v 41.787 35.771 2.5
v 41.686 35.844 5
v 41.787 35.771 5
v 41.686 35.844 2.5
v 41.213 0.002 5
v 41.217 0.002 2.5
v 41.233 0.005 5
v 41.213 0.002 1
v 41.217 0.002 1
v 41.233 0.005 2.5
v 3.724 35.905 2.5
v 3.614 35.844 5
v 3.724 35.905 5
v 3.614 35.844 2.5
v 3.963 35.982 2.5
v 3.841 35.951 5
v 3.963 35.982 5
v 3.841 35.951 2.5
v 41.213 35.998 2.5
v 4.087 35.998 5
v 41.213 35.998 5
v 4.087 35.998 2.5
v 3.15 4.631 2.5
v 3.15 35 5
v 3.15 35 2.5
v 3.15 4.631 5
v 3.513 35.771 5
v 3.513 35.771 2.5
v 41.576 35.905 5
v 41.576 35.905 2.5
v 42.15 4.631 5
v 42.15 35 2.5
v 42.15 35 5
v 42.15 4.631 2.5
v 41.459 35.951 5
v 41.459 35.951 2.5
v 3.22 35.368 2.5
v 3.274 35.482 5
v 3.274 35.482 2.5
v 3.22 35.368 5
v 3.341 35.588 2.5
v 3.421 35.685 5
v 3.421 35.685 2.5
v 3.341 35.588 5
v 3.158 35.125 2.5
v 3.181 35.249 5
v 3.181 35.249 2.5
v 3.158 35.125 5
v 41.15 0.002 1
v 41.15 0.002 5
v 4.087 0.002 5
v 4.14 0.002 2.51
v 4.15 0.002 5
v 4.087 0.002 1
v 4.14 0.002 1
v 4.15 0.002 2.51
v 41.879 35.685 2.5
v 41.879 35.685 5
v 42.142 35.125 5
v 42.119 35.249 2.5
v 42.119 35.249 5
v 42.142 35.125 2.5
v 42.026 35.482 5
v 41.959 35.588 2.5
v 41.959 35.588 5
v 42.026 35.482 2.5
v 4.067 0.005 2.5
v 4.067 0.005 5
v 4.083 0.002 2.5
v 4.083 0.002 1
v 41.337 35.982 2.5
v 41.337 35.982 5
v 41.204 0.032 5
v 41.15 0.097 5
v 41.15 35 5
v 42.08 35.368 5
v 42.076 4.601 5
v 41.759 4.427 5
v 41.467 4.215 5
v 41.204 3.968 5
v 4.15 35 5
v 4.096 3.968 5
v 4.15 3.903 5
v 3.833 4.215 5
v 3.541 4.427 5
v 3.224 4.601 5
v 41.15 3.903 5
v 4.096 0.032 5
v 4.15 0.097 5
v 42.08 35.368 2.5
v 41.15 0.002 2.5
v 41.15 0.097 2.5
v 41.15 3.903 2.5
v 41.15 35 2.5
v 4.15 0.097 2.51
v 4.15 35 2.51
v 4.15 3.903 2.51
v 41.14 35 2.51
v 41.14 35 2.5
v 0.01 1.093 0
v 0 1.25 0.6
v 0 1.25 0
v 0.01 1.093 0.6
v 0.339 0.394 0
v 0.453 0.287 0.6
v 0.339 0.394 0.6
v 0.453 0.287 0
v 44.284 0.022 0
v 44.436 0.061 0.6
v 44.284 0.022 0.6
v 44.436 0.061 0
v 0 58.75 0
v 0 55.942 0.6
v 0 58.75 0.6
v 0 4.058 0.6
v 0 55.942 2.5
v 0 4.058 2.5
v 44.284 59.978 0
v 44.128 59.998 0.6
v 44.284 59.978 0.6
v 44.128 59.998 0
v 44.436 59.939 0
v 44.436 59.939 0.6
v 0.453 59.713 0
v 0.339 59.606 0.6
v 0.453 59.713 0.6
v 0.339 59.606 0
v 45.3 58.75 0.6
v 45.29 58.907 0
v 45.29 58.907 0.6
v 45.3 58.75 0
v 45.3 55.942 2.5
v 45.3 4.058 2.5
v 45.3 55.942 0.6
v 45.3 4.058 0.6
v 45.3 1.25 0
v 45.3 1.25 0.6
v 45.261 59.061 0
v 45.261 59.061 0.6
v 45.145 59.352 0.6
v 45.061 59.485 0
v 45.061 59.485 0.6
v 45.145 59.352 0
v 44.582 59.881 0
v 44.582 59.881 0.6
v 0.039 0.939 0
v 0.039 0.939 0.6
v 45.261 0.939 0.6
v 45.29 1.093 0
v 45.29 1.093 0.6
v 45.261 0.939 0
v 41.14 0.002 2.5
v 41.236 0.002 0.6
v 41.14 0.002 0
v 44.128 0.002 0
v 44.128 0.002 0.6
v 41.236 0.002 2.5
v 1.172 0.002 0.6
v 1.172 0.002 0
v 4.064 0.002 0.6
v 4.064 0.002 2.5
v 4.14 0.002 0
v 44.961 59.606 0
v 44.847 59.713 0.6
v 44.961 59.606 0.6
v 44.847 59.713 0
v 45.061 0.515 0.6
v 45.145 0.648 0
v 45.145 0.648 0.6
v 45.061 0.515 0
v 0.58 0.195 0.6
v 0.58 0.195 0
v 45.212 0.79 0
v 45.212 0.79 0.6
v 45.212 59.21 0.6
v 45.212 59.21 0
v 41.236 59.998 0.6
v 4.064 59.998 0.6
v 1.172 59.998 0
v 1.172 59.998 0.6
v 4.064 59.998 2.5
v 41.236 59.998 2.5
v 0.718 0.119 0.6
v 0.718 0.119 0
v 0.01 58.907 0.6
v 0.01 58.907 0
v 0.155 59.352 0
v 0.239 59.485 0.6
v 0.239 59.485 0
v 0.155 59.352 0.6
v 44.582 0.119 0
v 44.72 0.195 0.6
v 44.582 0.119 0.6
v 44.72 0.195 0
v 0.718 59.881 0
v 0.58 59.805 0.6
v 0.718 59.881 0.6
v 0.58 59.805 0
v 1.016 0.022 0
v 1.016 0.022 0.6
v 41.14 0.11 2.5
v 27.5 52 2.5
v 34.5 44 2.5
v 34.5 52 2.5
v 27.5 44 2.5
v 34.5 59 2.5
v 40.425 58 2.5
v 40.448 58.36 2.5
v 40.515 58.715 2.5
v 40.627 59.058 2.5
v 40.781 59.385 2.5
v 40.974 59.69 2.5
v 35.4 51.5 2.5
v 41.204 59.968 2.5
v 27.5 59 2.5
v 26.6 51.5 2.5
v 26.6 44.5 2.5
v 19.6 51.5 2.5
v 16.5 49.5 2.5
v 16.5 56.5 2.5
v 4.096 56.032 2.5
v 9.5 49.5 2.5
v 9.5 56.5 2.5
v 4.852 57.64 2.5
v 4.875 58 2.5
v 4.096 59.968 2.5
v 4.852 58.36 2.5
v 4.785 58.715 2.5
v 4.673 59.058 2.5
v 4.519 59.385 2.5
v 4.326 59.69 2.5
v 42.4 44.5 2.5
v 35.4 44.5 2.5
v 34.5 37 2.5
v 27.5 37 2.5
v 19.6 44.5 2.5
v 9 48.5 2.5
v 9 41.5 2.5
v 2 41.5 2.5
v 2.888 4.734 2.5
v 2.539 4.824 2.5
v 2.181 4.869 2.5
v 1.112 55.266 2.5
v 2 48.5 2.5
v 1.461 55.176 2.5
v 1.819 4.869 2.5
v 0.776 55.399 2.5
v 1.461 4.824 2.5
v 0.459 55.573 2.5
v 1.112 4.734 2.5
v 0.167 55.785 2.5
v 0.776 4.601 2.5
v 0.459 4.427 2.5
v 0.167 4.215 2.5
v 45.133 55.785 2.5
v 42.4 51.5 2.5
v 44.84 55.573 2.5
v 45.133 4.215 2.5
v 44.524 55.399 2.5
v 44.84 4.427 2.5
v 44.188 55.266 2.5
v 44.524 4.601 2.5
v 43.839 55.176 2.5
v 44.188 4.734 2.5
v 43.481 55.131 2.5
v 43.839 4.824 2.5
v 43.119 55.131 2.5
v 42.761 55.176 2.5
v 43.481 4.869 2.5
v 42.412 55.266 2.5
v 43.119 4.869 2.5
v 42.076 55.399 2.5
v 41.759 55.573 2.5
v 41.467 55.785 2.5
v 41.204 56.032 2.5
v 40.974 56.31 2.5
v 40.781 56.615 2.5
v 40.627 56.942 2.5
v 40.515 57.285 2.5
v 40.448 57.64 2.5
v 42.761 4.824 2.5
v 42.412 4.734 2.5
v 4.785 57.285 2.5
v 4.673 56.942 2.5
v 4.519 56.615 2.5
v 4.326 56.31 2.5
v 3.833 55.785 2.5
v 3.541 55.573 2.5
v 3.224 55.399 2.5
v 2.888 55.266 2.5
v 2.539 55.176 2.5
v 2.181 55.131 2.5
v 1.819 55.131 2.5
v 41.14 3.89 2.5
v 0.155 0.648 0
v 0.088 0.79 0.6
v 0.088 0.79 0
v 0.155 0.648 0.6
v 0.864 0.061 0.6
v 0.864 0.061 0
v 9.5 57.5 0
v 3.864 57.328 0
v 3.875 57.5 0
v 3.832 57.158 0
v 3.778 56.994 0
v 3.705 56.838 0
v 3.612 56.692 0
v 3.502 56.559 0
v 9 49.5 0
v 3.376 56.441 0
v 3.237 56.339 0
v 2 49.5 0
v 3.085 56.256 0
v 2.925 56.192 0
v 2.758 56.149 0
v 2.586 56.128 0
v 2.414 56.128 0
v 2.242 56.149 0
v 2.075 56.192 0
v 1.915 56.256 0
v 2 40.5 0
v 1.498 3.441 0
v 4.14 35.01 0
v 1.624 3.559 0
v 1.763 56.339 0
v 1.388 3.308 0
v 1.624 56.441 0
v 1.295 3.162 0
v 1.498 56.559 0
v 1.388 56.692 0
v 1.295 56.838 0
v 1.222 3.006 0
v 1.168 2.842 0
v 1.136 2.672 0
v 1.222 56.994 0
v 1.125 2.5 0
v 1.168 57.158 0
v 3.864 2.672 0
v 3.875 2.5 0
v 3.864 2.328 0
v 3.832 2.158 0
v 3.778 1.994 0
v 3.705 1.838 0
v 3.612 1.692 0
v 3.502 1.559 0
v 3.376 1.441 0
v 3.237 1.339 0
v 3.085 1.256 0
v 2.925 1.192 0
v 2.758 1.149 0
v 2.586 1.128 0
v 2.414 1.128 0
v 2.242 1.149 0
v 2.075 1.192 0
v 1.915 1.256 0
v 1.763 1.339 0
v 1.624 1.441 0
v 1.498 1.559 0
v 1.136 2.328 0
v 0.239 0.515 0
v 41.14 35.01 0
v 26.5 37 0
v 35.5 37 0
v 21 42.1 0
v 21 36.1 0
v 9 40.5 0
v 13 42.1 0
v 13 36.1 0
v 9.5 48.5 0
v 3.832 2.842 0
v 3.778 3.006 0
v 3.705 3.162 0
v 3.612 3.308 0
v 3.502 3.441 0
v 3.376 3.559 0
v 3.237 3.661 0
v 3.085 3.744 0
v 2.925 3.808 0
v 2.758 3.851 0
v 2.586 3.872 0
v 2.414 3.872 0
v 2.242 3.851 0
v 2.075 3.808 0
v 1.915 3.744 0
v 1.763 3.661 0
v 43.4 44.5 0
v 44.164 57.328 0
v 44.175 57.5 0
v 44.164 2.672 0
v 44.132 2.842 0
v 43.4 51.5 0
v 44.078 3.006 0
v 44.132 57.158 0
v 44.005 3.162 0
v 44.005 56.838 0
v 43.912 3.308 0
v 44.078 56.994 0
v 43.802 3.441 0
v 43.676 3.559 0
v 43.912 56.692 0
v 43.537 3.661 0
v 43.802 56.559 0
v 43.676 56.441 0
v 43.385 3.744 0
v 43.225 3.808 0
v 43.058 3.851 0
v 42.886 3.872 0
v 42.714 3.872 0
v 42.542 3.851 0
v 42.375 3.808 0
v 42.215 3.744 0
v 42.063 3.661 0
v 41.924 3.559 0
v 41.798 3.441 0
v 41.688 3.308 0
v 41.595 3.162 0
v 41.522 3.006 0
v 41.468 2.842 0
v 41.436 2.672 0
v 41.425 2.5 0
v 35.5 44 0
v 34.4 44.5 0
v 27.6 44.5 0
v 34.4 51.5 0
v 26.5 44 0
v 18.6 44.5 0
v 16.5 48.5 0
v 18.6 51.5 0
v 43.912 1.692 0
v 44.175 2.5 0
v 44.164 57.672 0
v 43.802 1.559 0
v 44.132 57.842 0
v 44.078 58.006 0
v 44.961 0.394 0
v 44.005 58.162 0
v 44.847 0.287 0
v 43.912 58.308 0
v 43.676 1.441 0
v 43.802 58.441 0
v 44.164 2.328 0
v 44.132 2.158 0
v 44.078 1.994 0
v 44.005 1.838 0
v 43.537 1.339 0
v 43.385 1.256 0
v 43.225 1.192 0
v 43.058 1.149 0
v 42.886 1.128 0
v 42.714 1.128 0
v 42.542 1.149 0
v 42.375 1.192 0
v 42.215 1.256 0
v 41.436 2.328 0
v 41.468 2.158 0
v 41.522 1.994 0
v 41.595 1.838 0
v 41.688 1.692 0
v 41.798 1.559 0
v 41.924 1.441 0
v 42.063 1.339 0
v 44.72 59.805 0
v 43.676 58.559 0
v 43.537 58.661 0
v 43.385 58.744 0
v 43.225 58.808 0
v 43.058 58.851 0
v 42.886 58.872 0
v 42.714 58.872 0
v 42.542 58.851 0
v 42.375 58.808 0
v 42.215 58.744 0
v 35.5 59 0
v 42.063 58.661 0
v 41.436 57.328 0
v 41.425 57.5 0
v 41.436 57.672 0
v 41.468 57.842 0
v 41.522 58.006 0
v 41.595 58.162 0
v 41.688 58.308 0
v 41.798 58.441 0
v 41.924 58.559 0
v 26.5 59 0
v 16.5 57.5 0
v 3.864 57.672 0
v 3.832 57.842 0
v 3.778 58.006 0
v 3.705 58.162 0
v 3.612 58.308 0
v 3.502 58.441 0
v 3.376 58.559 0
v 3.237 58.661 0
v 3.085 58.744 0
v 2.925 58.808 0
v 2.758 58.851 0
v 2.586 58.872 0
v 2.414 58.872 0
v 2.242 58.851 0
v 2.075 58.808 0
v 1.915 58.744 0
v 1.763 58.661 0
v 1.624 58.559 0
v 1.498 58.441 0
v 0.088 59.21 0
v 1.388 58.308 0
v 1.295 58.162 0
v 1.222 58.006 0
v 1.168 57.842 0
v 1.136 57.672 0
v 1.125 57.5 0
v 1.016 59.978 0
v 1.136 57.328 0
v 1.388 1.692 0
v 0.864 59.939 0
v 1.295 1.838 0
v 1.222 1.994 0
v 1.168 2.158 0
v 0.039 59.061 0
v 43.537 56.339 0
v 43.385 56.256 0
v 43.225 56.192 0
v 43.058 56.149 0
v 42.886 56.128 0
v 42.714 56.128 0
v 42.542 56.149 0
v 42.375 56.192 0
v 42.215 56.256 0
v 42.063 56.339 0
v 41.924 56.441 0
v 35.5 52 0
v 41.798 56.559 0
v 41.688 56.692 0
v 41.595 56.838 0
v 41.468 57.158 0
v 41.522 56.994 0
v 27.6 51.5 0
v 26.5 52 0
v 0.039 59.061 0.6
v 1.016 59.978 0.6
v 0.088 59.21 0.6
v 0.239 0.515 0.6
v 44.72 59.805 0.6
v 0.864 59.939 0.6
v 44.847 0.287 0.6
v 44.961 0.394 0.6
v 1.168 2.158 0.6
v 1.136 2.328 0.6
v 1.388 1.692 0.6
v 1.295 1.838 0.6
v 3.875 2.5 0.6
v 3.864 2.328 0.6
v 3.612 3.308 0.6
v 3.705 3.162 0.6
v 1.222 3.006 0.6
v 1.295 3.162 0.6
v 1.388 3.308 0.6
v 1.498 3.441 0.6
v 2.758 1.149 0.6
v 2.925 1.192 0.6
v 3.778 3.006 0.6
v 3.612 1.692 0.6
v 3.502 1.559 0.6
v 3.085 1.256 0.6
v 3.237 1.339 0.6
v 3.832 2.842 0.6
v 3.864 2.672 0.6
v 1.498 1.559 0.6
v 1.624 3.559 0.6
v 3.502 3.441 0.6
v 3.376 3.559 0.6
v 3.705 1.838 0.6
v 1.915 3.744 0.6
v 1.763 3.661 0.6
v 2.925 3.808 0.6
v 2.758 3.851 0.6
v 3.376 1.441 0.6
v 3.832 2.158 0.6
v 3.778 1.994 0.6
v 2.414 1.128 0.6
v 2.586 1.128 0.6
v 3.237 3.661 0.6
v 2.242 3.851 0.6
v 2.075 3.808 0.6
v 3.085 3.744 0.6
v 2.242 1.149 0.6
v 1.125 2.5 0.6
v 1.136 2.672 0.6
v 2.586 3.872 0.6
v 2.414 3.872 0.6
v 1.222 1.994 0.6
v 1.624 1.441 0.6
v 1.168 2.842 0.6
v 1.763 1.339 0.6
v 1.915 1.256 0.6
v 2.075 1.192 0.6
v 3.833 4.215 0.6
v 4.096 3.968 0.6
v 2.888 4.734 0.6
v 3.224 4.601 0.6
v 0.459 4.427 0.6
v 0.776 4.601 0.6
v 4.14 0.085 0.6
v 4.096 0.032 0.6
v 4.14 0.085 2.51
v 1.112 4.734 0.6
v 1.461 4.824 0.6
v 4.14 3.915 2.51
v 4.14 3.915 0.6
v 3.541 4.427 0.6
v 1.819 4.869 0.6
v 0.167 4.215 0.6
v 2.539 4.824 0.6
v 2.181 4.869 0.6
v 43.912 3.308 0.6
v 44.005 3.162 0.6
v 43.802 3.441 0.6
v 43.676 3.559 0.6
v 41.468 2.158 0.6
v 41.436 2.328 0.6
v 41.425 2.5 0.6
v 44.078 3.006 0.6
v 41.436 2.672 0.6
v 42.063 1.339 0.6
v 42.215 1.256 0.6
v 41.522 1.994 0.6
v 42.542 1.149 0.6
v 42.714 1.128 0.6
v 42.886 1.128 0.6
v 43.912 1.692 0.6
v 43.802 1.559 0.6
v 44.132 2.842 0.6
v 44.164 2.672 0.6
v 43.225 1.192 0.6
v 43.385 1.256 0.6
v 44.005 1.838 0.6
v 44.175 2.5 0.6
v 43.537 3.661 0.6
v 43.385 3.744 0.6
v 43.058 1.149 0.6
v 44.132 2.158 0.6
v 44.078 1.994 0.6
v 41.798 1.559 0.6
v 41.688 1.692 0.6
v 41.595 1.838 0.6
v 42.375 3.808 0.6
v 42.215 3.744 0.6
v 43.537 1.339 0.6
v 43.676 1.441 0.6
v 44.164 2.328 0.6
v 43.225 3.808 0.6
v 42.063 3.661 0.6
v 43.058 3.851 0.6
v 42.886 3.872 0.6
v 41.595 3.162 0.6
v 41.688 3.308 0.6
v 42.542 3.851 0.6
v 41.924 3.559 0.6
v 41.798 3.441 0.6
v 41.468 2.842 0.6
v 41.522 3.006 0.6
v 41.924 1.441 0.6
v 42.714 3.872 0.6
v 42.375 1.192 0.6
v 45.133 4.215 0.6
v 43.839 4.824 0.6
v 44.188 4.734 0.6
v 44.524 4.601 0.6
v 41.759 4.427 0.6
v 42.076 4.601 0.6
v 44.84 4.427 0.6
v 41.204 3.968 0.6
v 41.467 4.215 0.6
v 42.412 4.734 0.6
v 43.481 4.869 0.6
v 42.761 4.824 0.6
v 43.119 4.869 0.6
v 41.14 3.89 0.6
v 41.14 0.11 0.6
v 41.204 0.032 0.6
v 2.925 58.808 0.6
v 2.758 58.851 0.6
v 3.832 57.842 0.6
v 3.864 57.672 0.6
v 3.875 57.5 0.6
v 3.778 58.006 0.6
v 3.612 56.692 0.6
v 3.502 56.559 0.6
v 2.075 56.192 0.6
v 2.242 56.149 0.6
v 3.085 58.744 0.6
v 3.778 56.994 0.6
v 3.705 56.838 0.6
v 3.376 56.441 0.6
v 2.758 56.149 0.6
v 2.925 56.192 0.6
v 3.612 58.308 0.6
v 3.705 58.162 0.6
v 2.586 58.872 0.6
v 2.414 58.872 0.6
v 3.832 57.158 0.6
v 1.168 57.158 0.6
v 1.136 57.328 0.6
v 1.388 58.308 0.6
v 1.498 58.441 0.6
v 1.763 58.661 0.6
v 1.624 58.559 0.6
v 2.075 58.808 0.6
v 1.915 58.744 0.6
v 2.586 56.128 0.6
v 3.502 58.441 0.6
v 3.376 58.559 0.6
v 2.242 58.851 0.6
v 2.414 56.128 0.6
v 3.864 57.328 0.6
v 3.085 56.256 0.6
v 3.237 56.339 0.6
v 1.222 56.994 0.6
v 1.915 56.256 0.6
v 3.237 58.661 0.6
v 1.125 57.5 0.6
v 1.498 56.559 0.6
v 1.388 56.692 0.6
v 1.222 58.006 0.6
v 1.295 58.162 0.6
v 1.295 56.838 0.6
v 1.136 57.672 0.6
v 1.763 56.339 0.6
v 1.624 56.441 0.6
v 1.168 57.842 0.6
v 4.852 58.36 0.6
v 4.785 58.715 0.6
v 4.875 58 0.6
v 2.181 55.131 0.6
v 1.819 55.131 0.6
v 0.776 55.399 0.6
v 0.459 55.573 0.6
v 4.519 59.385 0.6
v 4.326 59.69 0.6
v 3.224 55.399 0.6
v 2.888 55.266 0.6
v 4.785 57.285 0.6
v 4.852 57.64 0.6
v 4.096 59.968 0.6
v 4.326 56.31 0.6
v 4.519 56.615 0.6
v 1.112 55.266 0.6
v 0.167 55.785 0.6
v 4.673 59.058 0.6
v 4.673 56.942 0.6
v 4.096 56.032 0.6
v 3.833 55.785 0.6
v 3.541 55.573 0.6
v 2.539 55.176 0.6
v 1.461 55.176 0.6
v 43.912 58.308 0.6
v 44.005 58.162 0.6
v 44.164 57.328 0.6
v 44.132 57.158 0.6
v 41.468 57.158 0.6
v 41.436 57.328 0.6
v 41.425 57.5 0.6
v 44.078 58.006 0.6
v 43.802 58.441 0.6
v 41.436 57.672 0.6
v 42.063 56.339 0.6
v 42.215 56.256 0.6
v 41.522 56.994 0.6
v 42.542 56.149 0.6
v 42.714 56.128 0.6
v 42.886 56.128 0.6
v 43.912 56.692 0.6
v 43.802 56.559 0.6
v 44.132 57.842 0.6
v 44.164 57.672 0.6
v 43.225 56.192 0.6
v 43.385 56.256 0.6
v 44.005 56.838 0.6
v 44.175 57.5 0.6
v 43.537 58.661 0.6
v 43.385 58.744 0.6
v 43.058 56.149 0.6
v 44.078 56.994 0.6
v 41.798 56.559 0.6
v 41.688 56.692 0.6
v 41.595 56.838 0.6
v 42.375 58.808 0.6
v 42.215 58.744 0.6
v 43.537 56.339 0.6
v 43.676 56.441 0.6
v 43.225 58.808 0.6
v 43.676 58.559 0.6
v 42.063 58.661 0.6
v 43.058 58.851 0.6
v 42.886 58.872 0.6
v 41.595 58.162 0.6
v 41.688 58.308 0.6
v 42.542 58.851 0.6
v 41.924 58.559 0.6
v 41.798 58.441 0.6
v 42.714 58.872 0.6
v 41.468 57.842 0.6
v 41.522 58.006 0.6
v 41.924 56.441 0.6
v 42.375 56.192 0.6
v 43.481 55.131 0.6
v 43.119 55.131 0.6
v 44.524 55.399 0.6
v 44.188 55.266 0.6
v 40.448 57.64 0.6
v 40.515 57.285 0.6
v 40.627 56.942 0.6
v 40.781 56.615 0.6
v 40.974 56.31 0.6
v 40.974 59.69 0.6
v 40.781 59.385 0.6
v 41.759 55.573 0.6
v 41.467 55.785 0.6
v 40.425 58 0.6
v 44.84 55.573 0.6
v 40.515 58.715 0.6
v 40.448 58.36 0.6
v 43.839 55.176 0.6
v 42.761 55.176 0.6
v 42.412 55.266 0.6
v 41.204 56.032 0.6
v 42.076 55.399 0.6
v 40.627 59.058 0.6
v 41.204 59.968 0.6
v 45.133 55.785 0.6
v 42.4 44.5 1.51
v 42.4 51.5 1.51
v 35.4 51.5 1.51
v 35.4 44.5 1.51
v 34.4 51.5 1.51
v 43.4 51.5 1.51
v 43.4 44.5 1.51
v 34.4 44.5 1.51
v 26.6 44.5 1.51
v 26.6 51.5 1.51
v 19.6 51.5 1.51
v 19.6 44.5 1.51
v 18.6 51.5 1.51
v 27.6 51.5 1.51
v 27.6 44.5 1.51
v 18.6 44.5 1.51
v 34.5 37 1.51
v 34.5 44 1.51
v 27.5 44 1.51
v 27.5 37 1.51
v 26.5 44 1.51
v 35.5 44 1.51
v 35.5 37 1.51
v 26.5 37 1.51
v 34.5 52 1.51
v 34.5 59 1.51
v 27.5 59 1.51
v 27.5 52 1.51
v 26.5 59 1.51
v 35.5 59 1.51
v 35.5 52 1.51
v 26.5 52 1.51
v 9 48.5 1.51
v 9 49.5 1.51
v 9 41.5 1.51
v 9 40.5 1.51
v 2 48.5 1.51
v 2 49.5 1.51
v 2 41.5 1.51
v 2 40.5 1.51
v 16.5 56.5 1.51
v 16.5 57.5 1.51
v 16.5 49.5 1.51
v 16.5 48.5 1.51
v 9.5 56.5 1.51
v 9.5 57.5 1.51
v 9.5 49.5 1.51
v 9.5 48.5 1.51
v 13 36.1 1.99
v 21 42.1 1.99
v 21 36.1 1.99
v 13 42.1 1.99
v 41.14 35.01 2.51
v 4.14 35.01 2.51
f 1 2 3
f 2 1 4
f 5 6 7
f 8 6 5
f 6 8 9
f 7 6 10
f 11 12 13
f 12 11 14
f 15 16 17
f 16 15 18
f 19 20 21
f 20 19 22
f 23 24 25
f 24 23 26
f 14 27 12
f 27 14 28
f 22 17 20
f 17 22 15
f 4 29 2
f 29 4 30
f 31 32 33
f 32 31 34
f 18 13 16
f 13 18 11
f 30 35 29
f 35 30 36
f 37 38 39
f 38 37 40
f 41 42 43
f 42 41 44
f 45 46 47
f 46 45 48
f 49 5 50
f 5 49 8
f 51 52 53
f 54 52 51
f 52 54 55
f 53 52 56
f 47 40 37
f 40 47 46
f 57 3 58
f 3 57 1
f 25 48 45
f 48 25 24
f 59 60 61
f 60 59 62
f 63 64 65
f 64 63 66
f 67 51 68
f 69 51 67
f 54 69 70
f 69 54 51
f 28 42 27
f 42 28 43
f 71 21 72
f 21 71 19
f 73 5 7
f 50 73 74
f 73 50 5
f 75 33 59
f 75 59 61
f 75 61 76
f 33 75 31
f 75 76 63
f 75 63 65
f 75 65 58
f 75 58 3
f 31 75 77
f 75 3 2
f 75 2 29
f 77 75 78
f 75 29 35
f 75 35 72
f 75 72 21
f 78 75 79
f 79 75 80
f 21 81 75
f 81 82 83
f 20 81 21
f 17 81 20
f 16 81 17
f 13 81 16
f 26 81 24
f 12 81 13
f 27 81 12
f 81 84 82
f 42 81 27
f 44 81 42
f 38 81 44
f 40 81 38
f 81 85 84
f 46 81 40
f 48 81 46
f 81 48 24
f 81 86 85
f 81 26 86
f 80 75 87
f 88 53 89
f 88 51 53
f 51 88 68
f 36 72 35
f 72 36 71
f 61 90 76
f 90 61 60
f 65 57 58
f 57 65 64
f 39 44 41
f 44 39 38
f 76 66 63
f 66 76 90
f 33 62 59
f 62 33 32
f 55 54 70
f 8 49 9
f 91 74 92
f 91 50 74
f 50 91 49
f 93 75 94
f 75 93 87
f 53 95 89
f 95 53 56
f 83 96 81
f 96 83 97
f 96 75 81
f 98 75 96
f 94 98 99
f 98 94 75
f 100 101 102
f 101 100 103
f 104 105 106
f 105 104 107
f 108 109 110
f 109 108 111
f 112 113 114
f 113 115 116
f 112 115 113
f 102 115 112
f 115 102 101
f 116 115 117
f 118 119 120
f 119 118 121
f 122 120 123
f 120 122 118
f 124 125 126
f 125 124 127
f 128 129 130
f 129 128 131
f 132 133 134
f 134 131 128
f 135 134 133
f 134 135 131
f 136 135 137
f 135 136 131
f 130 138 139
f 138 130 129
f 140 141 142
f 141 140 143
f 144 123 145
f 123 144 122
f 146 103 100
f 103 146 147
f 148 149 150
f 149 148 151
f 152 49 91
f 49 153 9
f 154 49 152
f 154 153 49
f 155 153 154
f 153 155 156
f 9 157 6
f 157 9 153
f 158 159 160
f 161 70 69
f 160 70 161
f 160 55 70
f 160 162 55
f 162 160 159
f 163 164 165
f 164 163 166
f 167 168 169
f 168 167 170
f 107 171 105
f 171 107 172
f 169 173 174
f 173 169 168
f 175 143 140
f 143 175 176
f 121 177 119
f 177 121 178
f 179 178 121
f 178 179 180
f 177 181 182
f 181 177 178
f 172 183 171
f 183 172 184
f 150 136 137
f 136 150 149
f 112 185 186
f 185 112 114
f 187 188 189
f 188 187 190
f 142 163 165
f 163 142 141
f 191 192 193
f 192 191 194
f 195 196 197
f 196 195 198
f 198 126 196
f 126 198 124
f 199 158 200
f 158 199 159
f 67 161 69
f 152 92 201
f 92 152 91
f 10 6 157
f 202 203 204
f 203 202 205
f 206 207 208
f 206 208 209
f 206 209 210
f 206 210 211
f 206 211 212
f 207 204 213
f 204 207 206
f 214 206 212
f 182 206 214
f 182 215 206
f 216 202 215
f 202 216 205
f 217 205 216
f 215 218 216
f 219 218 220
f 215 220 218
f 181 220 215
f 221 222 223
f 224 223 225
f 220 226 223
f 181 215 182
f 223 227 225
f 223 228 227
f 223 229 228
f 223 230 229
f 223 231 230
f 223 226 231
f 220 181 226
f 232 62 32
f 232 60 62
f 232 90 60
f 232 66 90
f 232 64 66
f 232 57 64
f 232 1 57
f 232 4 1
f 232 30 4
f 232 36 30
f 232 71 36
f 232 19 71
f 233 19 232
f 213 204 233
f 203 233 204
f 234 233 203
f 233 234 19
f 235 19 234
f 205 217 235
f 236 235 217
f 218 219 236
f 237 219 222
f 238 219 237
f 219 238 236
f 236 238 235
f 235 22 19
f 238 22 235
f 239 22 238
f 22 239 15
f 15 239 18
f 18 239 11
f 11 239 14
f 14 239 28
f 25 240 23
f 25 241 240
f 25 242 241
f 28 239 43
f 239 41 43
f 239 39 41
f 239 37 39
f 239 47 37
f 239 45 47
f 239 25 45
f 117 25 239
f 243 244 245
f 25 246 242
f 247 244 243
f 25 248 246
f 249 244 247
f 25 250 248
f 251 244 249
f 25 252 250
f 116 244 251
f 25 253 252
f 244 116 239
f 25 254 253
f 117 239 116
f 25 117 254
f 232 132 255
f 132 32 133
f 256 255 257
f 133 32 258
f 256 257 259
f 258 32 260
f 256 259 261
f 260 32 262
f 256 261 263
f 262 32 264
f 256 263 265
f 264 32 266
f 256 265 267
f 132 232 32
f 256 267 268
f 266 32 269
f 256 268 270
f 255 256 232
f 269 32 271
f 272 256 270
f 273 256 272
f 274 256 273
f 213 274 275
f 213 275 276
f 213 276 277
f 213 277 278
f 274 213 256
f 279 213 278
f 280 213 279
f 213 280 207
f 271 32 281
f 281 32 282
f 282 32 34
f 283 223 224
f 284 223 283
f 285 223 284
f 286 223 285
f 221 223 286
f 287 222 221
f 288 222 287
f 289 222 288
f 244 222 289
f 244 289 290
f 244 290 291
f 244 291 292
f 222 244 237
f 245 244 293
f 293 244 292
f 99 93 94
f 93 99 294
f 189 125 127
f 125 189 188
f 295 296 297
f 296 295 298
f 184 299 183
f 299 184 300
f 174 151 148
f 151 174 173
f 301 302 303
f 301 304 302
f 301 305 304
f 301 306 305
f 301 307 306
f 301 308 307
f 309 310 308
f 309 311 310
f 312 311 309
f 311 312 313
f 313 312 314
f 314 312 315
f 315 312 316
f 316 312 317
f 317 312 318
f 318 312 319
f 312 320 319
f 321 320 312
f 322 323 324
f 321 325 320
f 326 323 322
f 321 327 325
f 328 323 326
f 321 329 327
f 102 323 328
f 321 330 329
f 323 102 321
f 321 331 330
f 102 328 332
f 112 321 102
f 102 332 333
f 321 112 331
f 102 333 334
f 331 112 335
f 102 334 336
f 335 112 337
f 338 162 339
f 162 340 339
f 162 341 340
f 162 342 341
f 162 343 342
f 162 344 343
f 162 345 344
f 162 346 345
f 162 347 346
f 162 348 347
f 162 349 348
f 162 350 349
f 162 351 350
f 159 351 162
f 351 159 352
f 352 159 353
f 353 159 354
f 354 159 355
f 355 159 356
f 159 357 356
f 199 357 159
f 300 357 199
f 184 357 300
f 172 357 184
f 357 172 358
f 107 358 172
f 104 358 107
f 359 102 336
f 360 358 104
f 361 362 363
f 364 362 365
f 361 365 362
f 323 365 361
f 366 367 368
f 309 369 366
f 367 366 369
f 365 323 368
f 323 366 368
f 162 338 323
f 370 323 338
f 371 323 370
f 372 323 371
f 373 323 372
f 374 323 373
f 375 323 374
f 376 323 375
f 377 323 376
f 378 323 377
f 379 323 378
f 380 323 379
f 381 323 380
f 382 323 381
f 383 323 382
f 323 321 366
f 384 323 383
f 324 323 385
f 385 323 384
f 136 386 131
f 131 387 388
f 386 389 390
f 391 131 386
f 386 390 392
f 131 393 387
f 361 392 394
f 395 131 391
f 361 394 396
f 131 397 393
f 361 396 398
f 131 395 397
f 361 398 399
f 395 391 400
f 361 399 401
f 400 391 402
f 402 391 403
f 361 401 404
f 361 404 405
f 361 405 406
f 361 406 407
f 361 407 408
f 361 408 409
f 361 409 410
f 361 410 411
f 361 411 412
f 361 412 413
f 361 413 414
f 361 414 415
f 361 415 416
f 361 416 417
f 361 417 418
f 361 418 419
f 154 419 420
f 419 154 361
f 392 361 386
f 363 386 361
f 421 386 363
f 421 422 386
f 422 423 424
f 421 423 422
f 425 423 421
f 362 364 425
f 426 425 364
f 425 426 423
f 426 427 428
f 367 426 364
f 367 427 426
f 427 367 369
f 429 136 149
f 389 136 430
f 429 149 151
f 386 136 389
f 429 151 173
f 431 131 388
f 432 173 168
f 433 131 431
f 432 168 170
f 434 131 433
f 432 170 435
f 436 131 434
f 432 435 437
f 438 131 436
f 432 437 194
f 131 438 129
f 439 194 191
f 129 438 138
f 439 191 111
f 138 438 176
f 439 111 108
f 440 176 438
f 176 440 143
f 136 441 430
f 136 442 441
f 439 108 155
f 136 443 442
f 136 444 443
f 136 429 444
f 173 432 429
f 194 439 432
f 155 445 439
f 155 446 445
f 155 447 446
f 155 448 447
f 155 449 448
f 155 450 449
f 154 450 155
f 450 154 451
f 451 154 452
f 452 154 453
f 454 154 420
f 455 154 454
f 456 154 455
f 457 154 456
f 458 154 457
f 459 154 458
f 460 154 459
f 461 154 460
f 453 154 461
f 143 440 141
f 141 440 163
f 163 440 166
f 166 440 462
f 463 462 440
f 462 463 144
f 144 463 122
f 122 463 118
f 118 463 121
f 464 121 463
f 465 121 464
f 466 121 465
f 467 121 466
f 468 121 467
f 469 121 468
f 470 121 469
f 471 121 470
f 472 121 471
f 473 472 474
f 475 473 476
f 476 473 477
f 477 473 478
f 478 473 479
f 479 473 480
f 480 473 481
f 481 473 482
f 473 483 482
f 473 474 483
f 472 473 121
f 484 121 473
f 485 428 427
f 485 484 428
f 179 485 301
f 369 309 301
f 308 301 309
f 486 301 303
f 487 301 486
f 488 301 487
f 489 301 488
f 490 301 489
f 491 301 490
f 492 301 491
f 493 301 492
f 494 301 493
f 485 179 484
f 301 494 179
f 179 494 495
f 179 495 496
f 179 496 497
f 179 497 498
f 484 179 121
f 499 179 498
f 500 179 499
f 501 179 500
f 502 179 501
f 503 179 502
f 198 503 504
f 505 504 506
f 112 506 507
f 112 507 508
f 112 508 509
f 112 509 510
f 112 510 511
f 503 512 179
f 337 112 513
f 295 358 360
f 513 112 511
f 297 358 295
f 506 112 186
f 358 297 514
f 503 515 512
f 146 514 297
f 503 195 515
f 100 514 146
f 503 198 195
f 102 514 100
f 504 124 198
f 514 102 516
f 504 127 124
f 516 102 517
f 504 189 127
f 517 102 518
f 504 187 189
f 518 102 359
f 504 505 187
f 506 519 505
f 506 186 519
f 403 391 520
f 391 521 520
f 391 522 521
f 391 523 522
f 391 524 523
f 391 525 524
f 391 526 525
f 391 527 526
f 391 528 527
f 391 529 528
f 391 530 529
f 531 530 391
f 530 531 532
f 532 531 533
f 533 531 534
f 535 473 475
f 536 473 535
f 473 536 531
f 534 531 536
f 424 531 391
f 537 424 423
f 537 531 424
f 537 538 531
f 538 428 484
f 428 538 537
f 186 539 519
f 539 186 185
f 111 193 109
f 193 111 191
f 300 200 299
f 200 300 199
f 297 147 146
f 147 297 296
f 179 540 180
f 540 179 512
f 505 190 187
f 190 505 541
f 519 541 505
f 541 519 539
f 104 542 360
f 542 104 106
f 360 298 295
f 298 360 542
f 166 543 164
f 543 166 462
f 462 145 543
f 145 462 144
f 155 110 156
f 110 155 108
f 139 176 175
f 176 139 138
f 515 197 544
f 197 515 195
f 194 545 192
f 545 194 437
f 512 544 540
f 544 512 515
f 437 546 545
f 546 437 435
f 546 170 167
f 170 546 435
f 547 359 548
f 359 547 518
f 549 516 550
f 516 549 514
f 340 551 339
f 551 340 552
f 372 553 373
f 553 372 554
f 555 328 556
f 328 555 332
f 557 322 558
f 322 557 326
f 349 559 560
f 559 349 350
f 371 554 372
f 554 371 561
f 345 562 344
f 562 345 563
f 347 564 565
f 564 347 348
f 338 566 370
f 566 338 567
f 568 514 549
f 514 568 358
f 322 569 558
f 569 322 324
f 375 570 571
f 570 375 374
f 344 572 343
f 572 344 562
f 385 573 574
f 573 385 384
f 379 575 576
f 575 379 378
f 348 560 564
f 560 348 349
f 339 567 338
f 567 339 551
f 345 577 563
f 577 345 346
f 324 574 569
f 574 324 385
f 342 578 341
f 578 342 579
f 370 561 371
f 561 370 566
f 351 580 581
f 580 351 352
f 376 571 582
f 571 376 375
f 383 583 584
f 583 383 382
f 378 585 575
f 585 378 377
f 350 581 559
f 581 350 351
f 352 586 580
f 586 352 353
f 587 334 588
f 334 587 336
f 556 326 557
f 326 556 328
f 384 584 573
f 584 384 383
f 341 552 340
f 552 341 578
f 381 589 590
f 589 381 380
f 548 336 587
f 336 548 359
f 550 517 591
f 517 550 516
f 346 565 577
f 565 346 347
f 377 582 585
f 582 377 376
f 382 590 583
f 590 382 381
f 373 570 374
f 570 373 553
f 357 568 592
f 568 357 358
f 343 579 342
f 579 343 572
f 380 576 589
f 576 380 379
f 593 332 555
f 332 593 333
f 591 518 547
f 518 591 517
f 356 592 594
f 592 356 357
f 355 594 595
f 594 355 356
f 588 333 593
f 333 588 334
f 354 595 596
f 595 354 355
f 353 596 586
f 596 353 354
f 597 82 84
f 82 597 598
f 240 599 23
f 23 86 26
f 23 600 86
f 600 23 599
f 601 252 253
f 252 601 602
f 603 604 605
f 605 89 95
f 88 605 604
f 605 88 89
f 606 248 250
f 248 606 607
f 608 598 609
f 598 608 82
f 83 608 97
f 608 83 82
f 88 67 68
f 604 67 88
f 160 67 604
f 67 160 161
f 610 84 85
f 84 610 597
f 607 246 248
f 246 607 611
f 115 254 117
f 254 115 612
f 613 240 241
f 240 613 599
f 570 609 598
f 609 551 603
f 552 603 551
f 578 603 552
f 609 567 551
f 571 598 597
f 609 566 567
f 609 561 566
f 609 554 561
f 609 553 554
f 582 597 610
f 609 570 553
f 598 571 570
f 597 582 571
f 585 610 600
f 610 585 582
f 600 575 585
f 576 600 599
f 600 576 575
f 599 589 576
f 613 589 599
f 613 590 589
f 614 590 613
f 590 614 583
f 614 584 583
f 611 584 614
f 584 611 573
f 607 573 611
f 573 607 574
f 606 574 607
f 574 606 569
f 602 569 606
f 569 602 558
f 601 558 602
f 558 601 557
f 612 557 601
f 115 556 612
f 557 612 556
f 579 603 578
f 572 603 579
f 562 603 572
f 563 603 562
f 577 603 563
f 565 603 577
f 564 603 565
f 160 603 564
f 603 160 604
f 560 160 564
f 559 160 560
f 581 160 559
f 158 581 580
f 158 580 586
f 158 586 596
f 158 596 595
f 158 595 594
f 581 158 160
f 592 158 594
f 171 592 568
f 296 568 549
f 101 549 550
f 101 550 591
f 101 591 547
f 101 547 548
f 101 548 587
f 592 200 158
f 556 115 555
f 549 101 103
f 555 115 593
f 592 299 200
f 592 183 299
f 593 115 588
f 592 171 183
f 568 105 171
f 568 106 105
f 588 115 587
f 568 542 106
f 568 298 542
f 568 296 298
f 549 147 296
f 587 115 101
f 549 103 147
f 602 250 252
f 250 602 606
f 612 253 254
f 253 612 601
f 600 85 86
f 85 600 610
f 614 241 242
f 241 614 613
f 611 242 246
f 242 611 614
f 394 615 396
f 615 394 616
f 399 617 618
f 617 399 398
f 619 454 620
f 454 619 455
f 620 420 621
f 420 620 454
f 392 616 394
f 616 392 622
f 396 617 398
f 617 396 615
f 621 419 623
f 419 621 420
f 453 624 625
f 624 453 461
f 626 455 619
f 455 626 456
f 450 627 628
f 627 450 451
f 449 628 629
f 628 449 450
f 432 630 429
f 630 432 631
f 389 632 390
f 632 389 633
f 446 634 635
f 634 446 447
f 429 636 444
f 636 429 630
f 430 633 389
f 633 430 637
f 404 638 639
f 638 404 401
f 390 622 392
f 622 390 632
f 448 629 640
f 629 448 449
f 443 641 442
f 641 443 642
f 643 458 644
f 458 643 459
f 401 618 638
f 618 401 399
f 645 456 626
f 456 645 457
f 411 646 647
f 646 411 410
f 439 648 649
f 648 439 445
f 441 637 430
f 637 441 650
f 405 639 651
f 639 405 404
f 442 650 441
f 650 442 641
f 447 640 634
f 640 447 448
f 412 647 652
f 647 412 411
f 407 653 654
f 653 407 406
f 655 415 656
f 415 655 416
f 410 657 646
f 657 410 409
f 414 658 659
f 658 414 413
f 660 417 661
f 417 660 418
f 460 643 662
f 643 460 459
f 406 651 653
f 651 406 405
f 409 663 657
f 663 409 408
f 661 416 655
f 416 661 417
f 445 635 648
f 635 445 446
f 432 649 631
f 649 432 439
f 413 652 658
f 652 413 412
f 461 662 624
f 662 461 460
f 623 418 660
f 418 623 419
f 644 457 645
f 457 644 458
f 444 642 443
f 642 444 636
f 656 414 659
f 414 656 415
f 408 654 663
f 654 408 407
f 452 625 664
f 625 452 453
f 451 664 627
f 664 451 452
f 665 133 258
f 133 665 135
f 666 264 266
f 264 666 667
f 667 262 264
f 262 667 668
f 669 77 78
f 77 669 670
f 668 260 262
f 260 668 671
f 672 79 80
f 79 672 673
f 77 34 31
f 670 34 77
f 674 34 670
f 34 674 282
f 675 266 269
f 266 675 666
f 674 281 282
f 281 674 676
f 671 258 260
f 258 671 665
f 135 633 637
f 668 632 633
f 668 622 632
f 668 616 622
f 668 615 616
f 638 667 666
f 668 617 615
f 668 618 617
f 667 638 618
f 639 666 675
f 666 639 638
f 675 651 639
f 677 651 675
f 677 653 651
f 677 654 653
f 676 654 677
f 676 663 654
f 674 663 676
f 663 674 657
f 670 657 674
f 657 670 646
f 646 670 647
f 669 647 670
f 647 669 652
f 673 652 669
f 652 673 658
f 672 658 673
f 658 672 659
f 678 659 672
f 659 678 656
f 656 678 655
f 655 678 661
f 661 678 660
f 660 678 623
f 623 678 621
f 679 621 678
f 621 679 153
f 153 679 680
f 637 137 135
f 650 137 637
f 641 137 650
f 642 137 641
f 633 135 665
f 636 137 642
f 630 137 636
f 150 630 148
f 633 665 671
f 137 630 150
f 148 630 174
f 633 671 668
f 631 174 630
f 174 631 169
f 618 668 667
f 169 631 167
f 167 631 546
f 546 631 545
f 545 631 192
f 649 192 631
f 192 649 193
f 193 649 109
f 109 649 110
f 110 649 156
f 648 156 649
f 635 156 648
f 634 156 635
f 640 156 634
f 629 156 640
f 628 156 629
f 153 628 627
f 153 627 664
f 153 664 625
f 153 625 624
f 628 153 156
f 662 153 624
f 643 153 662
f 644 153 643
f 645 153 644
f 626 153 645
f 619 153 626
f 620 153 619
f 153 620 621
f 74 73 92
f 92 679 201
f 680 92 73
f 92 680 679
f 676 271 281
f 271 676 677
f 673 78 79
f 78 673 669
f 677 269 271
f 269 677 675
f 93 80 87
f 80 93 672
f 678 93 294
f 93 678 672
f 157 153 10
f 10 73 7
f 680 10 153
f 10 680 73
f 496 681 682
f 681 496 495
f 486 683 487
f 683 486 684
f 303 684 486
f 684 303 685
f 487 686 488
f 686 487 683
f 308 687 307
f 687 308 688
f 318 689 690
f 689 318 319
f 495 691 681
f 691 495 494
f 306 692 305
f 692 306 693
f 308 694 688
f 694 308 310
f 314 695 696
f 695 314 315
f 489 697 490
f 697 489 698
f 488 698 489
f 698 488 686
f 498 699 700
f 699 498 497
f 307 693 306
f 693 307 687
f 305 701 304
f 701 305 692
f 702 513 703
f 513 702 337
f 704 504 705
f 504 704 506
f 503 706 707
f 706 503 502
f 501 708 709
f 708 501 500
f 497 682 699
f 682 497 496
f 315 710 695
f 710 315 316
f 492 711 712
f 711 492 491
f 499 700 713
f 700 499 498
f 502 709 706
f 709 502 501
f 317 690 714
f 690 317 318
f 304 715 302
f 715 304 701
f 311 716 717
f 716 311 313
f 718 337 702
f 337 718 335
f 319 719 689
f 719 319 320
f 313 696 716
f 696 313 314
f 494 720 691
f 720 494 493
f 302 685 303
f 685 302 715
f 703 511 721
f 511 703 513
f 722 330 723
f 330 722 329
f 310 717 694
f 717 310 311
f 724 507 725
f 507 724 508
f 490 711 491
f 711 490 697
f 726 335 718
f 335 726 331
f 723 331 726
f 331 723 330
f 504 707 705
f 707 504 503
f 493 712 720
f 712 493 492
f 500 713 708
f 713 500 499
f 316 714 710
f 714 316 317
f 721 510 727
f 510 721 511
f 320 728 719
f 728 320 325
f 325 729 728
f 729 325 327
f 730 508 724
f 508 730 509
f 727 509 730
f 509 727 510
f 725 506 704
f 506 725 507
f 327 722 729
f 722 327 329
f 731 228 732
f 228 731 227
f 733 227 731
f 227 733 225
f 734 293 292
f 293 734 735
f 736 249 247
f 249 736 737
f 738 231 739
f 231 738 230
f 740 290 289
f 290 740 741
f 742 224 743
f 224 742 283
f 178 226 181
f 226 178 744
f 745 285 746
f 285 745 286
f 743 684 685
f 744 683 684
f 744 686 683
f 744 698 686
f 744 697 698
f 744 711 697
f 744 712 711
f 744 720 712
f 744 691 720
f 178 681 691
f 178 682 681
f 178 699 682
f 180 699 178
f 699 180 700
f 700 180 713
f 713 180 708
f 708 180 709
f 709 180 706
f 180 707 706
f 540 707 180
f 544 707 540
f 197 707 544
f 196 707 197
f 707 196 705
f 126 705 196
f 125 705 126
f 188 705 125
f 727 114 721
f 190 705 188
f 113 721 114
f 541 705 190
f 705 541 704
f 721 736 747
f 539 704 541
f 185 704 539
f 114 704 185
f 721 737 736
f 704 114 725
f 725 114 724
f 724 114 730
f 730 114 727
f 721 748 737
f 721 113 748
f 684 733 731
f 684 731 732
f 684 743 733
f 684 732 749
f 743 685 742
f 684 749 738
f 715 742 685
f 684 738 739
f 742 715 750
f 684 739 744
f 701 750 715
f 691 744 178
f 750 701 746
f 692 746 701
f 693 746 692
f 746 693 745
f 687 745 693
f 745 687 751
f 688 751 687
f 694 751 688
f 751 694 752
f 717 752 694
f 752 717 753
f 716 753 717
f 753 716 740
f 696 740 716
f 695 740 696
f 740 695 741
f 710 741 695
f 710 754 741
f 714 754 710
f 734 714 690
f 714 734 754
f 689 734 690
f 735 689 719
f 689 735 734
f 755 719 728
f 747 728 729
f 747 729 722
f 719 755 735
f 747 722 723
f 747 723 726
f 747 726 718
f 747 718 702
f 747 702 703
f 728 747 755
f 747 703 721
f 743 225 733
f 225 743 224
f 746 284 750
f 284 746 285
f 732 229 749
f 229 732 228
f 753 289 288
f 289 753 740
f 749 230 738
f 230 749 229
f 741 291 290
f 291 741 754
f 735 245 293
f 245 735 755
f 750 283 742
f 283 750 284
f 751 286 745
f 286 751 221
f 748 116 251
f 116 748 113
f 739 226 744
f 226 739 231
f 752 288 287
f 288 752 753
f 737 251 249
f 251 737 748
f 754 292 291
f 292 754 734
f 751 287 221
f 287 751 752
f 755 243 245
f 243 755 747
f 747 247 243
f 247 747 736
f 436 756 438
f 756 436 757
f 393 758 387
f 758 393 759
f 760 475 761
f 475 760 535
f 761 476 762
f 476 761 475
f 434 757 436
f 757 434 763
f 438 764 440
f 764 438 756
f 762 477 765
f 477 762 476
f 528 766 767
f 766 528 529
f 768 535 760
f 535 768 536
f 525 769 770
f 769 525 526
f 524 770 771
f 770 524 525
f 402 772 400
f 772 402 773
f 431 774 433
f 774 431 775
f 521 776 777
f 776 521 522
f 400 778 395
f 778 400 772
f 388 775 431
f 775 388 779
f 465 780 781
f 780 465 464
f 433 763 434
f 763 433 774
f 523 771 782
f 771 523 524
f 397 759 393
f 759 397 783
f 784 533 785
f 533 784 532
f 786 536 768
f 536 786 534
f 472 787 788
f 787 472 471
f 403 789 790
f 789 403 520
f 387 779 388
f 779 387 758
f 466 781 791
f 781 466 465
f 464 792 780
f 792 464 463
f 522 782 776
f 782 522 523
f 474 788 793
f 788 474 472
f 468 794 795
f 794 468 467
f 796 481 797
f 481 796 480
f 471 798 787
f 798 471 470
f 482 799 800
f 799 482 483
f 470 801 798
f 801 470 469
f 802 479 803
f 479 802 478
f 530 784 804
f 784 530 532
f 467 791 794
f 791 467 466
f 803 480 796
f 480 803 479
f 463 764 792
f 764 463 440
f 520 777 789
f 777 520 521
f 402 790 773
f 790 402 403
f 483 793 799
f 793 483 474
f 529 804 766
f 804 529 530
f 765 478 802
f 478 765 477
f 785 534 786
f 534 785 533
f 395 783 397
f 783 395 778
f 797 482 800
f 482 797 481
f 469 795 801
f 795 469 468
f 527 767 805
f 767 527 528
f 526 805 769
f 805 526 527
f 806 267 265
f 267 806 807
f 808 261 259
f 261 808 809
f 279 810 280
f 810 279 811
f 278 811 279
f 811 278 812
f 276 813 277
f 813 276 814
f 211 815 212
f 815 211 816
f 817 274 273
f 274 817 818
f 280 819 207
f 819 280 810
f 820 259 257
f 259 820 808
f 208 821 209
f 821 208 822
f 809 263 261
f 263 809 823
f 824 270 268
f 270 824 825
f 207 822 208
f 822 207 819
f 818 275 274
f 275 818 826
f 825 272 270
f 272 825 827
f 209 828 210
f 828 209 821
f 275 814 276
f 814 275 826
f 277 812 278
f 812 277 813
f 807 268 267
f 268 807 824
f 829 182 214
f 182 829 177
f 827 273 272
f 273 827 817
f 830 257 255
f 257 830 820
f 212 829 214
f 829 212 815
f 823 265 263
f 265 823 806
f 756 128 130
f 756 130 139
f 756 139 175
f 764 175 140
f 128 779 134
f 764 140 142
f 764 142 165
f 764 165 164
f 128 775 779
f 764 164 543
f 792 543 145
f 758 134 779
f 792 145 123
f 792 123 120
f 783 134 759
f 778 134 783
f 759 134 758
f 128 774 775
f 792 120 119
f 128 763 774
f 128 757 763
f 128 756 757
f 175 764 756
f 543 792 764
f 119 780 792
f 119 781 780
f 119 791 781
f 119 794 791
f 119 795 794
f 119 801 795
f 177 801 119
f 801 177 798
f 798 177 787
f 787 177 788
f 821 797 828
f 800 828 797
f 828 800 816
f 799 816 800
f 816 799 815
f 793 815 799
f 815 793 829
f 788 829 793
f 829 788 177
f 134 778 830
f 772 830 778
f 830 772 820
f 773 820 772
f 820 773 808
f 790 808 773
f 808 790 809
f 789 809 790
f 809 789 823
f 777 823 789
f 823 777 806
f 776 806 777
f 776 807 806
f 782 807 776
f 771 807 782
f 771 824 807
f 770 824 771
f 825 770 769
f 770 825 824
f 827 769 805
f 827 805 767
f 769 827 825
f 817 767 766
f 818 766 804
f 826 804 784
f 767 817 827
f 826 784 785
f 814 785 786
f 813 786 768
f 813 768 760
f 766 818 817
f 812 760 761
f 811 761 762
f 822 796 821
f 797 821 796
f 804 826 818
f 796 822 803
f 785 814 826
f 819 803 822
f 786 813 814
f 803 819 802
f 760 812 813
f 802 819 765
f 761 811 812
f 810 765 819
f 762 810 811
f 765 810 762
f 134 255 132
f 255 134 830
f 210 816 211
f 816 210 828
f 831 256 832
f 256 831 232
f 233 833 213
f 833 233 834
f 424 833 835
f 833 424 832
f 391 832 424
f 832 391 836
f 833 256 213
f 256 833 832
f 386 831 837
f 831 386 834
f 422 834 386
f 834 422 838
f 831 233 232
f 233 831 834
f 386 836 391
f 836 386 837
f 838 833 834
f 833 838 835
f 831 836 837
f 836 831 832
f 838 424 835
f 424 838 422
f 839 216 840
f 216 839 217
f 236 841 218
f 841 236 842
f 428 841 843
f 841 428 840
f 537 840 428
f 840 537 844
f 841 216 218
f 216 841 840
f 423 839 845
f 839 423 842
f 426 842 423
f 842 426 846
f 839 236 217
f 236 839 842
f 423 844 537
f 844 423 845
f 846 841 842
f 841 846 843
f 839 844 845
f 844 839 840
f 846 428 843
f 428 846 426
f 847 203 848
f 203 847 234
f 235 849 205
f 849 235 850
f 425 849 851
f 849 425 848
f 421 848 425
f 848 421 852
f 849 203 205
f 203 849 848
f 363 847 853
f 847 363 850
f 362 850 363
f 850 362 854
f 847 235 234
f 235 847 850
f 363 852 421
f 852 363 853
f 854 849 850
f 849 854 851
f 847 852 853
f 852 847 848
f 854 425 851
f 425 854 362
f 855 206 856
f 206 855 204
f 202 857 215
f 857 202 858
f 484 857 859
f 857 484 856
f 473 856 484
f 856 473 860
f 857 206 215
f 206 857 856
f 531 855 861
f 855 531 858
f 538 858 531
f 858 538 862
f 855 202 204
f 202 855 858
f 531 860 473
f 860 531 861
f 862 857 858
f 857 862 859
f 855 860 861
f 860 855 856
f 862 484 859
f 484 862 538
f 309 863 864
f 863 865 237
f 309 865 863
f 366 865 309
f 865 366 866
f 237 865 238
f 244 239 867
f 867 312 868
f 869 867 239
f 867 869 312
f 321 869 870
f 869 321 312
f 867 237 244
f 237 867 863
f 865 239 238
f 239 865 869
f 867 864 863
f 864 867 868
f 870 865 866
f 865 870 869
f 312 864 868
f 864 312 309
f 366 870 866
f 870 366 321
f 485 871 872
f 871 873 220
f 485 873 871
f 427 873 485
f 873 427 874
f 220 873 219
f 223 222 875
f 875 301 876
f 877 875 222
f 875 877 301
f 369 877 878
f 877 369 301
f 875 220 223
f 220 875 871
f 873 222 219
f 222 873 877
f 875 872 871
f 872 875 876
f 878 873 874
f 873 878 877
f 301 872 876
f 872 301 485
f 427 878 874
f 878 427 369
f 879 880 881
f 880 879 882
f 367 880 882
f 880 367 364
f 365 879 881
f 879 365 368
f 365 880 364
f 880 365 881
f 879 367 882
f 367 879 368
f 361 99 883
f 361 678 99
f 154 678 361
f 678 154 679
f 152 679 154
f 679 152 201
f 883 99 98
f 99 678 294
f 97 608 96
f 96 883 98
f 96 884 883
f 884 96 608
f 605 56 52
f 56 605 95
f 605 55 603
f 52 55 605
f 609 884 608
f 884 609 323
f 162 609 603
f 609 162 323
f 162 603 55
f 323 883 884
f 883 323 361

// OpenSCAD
/* [Case] */
// Case Length in mm
length = 60.0;
// Case Width in mm
width = 45.3;
// Case Height in mm
height = 2.5;
// Case Wall Width
wall = 0;
// Screw Size in mm
screw = 2.0;

/* [OLED Cutout] */
oled_length = 35;
oled_width = 37;

/* [General] */
// Higher definition curves
$fs=0.01;
$fn=50;

// Source: https://gist.github.com/groovenectar/92174cb1c98c1089347e
module roundedcube(size = [1, 1, 1], center = false, radius = 0.5, apply_to = "all") {
	// If single value, convert to [x, y, z] vector
	size = (size[0] == undef) ? [size, size, size] : size;

	translate_min = radius;
	translate_xmax = size[0] - radius;
	translate_ymax = size[1] - radius;
	translate_zmax = size[2] - radius;

	diameter = radius * 2;

	module build_point(type = "sphere", rotate = [0, 0, 0]) {
		if (type == "sphere") {
			sphere(r = radius);
		} else if (type == "cylinder") {
			rotate(a = rotate)
			cylinder(h = diameter, r = radius, center = true);
		}
	}

	obj_translate = (center == false) ?
		[0, 0, 0] : [
			-(size[0] / 2),
			-(size[1] / 2),
			-(size[2] / 2)
		];

	translate(v = obj_translate) {
		hull() {
			for (translate_x = [translate_min, translate_xmax]) {
				x_at = (translate_x == translate_min) ? "min" : "max";
				for (translate_y = [translate_min, translate_ymax]) {
					y_at = (translate_y == translate_min) ? "min" : "max";
					for (translate_z = [translate_min, translate_zmax]) {
						z_at = (translate_z == translate_min) ? "min" : "max";

						translate(v = [translate_x, translate_y, translate_z])
						if (
							(apply_to == "all") ||
							(apply_to == "xmin" && x_at == "min") || (apply_to == "xmax" && x_at == "max") ||
							(apply_to == "ymin" && y_at == "min") || (apply_to == "ymax" && y_at == "max") ||
							(apply_to == "zmin" && z_at == "min") || (apply_to == "zmax" && z_at == "max")
						) {
							build_point("sphere");
						} else {
							rotate = 
								(apply_to == "xmin" || apply_to == "xmax" || apply_to == "x") ? [0, 90, 0] : (
								(apply_to == "ymin" || apply_to == "ymax" || apply_to == "y") ? [90, 90, 0] :
								[0, 0, 0]
							);
							build_point("cylinder", rotate);
						}
					}
				}
			}
		}
	}
}

module draw_base() {
    difference() {
        roundedcube([width, length, height], false, 1.25, "z");
    }
}

module draw_screw_holes() {
    _height = height + wall + 4;
    _diameter_small = screw + 0.25;
    _diameter_big = screw + 0.75;
    _diameter_bigger = screw + 3.75;
    
    _x = 2.5;
    _y = 2.5;
    _z = _height/2 - wall;
    _z2 = 0.6;//0.8; resin
    
    translate([_x, _y, _z]) {
        cylinder(h=_height, d=_diameter_big, center=true);
        
        translate([-0.5, -0.5, _z2])
            cylinder(h=_height, d=_diameter_bigger, center=true);
    }

    translate([width-_x, _y, _z]) {
        cylinder(h=_height, d=_diameter_big, center=true);
        
        translate([0.5, -0.5, _z2])
            cylinder(h=_height, d=_diameter_bigger, center=true);
    }

    translate([_x, length-_y, _z]) {
        cylinder(h=_height, d=_diameter_big, center=true);
        
        translate([-0.5, 0.5, _z2])
            cylinder(h=_height, d=_diameter_bigger, center=true);
    }

    translate([width-_x, length-_y, _z]) {
        cylinder(h=_height, d=_diameter_big, center=true);
        
        translate([0.5, 0.5, _z2])
            cylinder(h=_height, d=_diameter_bigger, center=true);
    }
}

module draw_oled_cutout() {
    translate([width/2-oled_width/2-0.01, 0, -0.01])
        cube([oled_width, oled_length+0.01, height+0.02]);
}

module draw_button_cutout() {
    button_size = 7;
    
    btn_lx = width - 6.4 - button_size/2;
    btn_ly = length - 12 - button_size/2;
    
    btn_rx = width - 22.2 - button_size/2;
    btn_ry = length - 12 - button_size/2;
    
    btn_ux = width - 14.3 - button_size/2;
    btn_uy = length - 19.5 - button_size/2;
    
    btn_dx = width - 14.3 - button_size/2;
    btn_dy = length - 4.5 - button_size/2;
    
    btn_ax = 5.5 - button_size/2;
    btn_ay = length - 15 - button_size/2;
    
    btn_bx = 13 - button_size/2;
    btn_by = length - 7 - button_size/2;
    
    _z = -1; // 0 resin
    
    translate([btn_lx, btn_ly, -0.01]) {
        cube([button_size, button_size, height+0.02]);
        
        translate([-1, 0, _z])
            cube([button_size+2, button_size, height+0.02]);
    }
    
    translate([btn_rx, btn_ry, -0.01]) {
        cube([button_size, button_size, height+0.02]);
        
        translate([-1, 0, _z])
            cube([button_size+2, button_size, height+0.02]);
    }
    
    translate([btn_ux, btn_uy, -0.01]) {
        cube([button_size, button_size, height+0.02]);
        
        translate([-1, 0, _z])
            cube([button_size+2, button_size, height+0.02]);
    }
        
    translate([btn_dx, btn_dy, -0.01]) {
        cube([button_size, button_size, height+0.02]);
        
        translate([-1, 0, _z])
            cube([button_size+2, button_size, height+0.02]);
    }
        
    translate([btn_ax, btn_ay, -0.01]) {
        cube([button_size, button_size, height+0.02]);
        
        translate([0, -1, _z])
            cube([button_size, button_size+2, height+0.02]);
    }
        
    translate([btn_bx, btn_by, -0.01]) {
        cube([button_size, button_size, height+0.02]);
        
        translate([0, -1, _z])
            cube([button_size, button_size+2, height+0.02]);
    }
}

module draw_led_cutout() {
    led_size = 6;
    led_height = 2;//3 resin
    
    led_x = 17 - led_size/2;
    led_y = length - 20.9 - led_size/2;
    
    translate([led_x, led_y, -0.01]) {
        cube([led_size, led_size, led_height]);
        
        translate([-1, 0, 0/*-1*/])
            cube([led_size+2, led_size, led_height]);
    }
}

module draw_oled_protector(){
    oled_width_plus = oled_width+2;
    oled_length_plus = oled_length+1;
    
    _x1 = width/2-(oled_width_plus)/2;
    _x2 = width/2-oled_width/2;
    
    difference() {
        translate([_x1, 0, 1])
            roundedcube([oled_width_plus, oled_length_plus, 4], false, 1, "z");
        
        translate([_x2, 0, 0.99])
            cube([oled_width, oled_length, 5.02]);
    }
}

difference() {
    union() {
        draw_base();
        draw_oled_protector();
    }
    #draw_screw_holes();
    draw_oled_cutout();
    draw_button_cutout();
    draw_led_cutout();
}
